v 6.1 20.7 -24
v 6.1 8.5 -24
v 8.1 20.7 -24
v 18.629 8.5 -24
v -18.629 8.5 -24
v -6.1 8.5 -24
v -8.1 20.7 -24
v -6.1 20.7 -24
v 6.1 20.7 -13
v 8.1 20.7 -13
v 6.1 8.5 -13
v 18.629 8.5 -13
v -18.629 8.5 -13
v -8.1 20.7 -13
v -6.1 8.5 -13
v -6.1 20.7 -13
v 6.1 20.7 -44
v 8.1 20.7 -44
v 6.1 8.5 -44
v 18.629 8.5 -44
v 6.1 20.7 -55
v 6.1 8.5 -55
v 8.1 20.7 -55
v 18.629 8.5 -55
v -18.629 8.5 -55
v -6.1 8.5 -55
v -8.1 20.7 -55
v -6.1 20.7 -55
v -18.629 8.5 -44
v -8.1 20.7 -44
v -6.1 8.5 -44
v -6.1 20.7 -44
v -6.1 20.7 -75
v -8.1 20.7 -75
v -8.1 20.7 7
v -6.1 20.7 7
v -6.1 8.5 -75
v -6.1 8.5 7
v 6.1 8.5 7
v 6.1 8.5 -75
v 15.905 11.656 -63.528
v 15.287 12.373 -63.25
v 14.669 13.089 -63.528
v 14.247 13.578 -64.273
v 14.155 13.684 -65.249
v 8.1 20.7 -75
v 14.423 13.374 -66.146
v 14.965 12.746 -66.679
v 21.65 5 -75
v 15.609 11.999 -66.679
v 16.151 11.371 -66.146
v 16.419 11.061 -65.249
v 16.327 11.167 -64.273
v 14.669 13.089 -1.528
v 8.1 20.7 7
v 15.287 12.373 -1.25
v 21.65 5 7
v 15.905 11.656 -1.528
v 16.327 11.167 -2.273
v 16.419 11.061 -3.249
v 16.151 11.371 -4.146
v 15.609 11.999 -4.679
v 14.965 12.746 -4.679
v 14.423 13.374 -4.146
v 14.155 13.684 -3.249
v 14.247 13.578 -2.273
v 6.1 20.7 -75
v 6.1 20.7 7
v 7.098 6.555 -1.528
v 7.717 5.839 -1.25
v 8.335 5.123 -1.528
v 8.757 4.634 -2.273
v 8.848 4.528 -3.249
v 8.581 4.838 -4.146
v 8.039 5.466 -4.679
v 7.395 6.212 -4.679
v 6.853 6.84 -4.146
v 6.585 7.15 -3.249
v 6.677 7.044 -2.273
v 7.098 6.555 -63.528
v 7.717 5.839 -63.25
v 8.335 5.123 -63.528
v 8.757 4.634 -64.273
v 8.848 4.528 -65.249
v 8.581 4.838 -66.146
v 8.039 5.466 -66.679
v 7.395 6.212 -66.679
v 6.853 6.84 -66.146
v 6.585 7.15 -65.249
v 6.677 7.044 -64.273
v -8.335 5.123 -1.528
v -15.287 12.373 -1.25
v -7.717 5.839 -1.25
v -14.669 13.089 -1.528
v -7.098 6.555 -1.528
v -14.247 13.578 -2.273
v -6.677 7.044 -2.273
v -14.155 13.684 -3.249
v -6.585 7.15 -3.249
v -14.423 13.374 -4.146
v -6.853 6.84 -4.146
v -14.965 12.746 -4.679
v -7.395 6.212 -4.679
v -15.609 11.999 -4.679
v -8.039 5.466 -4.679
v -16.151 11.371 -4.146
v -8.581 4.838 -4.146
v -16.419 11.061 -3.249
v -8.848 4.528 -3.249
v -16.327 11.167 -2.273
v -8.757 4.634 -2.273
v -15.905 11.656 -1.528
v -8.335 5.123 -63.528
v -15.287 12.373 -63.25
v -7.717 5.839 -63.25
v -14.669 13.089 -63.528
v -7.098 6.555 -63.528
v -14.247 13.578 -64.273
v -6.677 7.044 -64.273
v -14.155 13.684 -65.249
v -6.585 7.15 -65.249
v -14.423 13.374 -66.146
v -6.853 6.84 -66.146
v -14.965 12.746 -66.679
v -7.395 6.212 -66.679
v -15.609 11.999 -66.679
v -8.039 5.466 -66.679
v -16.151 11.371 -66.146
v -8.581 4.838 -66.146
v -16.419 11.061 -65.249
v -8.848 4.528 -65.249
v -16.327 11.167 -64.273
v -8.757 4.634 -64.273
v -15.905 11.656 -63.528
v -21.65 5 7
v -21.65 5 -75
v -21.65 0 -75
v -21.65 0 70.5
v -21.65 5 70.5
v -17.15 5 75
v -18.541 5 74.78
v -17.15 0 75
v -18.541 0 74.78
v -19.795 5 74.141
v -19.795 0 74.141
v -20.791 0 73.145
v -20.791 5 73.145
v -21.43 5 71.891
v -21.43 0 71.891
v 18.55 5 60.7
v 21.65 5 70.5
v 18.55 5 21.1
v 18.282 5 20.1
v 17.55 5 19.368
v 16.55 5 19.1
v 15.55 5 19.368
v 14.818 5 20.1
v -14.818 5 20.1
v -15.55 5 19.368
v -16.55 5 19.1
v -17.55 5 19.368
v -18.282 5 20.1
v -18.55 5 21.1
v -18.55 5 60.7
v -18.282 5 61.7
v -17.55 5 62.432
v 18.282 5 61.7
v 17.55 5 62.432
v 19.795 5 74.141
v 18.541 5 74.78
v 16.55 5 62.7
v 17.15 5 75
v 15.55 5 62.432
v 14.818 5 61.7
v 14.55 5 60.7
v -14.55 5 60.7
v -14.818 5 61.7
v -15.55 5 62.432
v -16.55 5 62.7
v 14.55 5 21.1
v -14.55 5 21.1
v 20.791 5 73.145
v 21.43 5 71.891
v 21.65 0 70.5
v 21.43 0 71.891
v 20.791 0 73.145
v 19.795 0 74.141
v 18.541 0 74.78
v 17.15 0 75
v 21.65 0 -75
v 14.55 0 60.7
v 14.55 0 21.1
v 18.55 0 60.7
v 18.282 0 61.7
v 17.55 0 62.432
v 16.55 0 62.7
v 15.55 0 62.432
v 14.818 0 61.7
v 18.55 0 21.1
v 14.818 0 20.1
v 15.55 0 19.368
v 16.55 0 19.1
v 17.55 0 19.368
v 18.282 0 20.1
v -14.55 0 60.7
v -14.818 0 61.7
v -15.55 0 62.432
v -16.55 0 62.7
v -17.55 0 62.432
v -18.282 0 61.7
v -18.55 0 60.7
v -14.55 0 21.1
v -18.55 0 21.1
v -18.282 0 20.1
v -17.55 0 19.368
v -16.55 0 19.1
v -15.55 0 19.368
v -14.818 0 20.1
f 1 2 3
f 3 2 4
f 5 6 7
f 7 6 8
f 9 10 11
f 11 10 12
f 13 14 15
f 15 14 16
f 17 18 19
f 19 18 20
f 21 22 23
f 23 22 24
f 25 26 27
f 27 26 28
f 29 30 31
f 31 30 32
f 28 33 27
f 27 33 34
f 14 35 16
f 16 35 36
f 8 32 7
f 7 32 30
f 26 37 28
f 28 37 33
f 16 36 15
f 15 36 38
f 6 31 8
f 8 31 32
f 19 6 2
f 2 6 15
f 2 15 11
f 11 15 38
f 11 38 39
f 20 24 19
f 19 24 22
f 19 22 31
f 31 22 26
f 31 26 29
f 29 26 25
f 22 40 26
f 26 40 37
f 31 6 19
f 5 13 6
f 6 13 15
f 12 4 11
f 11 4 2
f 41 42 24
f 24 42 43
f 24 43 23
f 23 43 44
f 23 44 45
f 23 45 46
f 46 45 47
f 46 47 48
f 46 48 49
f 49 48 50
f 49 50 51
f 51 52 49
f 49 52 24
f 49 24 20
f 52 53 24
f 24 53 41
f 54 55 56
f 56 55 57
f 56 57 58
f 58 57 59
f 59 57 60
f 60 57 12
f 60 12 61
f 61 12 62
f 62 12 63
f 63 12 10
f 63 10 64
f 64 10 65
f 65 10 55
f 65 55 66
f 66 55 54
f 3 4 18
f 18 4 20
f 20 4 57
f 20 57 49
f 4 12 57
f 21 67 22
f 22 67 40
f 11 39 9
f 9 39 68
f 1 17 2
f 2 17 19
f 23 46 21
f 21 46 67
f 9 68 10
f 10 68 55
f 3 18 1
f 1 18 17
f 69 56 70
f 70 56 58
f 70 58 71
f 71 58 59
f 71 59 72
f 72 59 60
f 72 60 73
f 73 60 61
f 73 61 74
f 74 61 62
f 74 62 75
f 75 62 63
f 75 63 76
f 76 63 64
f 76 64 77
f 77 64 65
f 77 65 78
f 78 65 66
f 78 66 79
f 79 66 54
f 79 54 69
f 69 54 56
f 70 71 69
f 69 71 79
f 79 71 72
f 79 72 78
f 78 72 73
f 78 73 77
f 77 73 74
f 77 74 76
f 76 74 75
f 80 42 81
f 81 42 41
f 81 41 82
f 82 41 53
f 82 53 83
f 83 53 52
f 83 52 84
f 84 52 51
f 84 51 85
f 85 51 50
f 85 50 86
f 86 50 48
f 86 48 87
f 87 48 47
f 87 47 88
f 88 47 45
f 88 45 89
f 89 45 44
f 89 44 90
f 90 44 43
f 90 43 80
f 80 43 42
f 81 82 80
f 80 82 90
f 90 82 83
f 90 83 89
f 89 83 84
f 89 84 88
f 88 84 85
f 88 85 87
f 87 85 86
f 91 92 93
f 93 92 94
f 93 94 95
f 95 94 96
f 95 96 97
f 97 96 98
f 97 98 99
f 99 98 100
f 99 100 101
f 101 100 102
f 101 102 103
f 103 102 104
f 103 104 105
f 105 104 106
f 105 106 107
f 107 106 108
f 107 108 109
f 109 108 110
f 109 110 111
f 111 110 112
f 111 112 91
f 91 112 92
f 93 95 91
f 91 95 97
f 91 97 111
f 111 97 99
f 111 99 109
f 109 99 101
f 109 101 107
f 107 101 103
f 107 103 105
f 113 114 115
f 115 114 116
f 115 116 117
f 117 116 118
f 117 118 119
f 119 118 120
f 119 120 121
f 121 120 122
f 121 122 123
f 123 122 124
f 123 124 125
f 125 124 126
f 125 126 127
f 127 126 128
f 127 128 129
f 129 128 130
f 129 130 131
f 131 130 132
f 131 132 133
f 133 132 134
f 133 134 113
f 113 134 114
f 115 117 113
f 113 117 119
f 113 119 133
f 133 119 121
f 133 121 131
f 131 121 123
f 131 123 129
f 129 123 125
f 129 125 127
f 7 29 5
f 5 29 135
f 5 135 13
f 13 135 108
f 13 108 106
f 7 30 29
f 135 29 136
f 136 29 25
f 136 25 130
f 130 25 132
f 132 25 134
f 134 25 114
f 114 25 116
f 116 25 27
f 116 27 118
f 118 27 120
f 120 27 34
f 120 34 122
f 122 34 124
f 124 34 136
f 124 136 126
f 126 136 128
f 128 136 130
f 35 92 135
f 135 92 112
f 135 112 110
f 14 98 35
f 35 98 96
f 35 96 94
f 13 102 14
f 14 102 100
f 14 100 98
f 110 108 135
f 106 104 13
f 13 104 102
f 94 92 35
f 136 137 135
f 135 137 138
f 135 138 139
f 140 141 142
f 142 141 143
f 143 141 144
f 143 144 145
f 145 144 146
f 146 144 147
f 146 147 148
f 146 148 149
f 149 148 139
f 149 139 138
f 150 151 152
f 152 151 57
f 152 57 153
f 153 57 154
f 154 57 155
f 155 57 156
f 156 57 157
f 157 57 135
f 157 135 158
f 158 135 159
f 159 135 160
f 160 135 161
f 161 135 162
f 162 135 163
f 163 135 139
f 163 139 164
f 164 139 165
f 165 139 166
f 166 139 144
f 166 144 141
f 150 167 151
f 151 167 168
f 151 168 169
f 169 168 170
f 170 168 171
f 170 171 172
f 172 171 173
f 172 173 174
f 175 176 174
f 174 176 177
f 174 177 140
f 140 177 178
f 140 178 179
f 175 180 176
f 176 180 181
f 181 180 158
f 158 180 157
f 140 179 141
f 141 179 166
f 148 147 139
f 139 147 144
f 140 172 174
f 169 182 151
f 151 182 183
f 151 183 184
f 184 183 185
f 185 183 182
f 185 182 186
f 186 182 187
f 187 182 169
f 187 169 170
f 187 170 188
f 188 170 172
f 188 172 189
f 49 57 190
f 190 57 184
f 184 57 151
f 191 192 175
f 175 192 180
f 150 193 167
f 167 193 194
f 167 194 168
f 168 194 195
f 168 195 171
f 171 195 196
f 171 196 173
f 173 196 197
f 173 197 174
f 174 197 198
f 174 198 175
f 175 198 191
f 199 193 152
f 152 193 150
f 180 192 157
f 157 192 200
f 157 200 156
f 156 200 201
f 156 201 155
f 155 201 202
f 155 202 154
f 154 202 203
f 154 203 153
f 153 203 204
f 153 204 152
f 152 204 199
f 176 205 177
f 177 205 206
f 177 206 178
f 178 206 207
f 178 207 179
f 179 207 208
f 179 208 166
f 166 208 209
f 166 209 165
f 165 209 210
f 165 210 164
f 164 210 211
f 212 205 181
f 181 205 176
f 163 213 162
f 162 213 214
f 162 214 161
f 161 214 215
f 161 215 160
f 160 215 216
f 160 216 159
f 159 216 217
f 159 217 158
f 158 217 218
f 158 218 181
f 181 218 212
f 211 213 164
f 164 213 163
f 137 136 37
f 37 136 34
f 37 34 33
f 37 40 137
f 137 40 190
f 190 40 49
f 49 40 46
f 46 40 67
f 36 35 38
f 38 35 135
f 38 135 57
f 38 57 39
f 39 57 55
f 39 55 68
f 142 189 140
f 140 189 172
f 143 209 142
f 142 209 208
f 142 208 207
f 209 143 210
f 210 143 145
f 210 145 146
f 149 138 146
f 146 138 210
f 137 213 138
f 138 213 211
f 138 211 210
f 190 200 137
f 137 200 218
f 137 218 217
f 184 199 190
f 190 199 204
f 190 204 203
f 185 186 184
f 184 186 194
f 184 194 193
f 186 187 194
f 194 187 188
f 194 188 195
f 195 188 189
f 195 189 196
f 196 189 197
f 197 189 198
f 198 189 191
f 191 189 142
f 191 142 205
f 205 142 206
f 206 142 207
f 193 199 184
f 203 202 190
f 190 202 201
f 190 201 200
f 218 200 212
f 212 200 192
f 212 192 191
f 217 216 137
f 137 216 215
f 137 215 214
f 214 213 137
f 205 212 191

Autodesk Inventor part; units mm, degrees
ref_plane "YZ Plane" through (0, 0, 0) normal (1, 0, 0) x (0, 1, 0)
ref_plane "XZ Plane" through (0, 0, 0) normal (0, 1, 0) x (-1, 0, 0)
ref_plane "XY Plane" through (0, 0, 0) normal (0, 0, 1) x (1, 0, 0)
sketch "스케치1" plane through (0, 0, 0) normal (0, 1, 0) x (-1, 0, 0)
  line L0 (-21.65, 75) -> (21.65, 75)
  line L1 (21.65, 75) -> (21.65, -75)
  line L2 (21.65, -75) -> (-21.65, -75)
  line L3 (-21.65, -75) -> (-21.65, 75)
  line L4 (-21.65, 75) -> (21.65, -75) construction
  line L5 (21.65, 75) -> (-21.65, -75) construction
  line L6 (-21.65, 7) -> (21.65, 7)
  point P0 (0, 0)
  dimension "d0" = 43.3
  dimension "d1" = 150
  dimension "d2" = 68
extrude "돌출2" add sketch "스케치1" along normal blind 5 contours L0 L1 L6 L3
extrude "돌출3" add sketch "스케치1" along normal blind 8.5 contours L6 L1 L2 L3
sketch "스케치3" plane through (0, 8.5, 0) normal (0, 1, 0) x (1, 0, 0)
  line L0 (-21.65, -7) -> (21.65, -7) projected
  line L1 (21.65, 75) -> (-21.65, 75) projected
  line L2 (6.1, -7) -> (-6.1, -7)
  line L3 (-6.1, -7) -> (-6.1, 75)
  line L4 (-6.1, 75) -> (6.1, 75)
  line L5 (6.1, 75) -> (6.1, -7)
  line L6 (21.65, -7) -> (21.65, 75) projected
  line L7 (21.65, 75) -> (6.1, 75)
  line L8 (6.1, 75) -> (6.1, -7)
  line L9 (6.1, -7) -> (21.65, -7)
  line L10 (21.65, -7) -> (21.65, 75)
  line L11 (-21.65, 75) -> (-6.1, 75)
  line L12 (-6.1, 75) -> (-6.1, -7)
  line L13 (-6.1, -7) -> (-21.65, -7)
  line L14 (-21.65, -7) -> (-21.65, 75)
  point P0 (0, 0)
  point P1 (-6.1, -7)
  point P2 (6.1, 75)
  dimension "d9" = 12.2
  dimension "d11" = 6.1
extrude "돌출4" add sketch "스케치3" along normal blind 12.2 contours L14 L1 L3 L0 | L5 L1 L6 L0
sketch "스케치4" plane through (0, 5, 0) normal (0, 1, 0) x (1, 0, 0)
  line L0 (16.55, -19.1) -> (16.55, -62.7) construction
  line L1 (14.55, -21.1) -> (14.55, -60.7)
  line L2 (18.55, -60.7) -> (18.55, -21.1)
  arc A0 (18.55, -21.1) -> (14.55, -21.1) centre (16.55, -21.1) ccw
  arc A1 (14.55, -60.7) -> (18.55, -60.7) centre (16.55, -60.7) ccw
  line L3 (21.65, -75) -> (21.65, -7) projected
  line L4 (-21.65, -75) -> (21.65, -75) projected
  line L5 (21.65, -7) -> (-21.65, -7) projected
  line L6 (0, -7) -> (0, -75)
  line L7 (-16.55, -19.1) -> (-16.55, -62.7) construction
  line L8 (-14.55, -21.1) -> (-14.55, -60.7)
  line L9 (-18.55, -60.7) -> (-18.55, -21.1)
  arc A2 (-14.55, -21.1) -> (-18.55, -21.1) centre (-16.55, -21.1) ccw
  arc A3 (-18.55, -60.7) -> (-14.55, -60.7) centre (-16.55, -60.7) ccw
  point P0 (0, 0)
  point P1 (16.55, -40.9)
  point P2 (-16.55, -40.9)
  dimension "d14" = 43.6
  dimension "d15" = 3.1
  dimension "d16" = 4
  dimension "d17" = 12.3
extrude "돌출5" cut sketch "스케치4" against normal through all contours A0 L2 A1 L1 | L8 A3 L9 A2
fillet "모깎기1" radius 4.5 2 edges at (21.65, 2.5, 75) (-21.65, 2.5, 75)
sketch "스케치5" plane through (-21.65, 5, 7) normal (0, 0, 1) x (1, 0, 0)
  line L0 (27.75, 3.5) -> (15.55, 3.5) projected
  line L1 (21.65, 3.5) -> (21.65, 29.9168)
  line L2 (43.3, 0) -> (43.3, 15.7) projected
  line L3 (4.5, 0) -> (38.8, 0) projected
  line L4 (43.3, 15.7) -> (27.75, 15.7)
  line L5 (27.75, 15.7) -> (27.75, 0)
  line L6 (27.75, 0) -> (43.3, 0)
  line L7 (43.3, 0) -> (43.3, 15.7)
  line L8 (43.3, 0) -> (29.75, 15.7)
  line L9 (43.3, 15.7) -> (27.75, 15.7) projected
  line L10 (43.3, -5) -> (38.8, -5) projected
  line L11 (0, 0) -> (0, 15.7)
  line L12 (0, 15.7) -> (15.55, 15.7)
  line L13 (0, 0) -> (0, 15.7)
  line L14 (0, 0) -> (13.55, 15.7)
  point P0 (21.65, -5)
  dimension "d21" = 2
  dimension "d22" = 5
extrude "돌출6" cut sketch "스케치5" against normal through all contours L8 L4 L2 | L11 L12 L14
sketch "스케치7" plane through (-21.65, 5, -75) normal (-0.757, 0.6534, 0) x (0, 0, 1)
  line L0 (0, 20.7387) -> (82, 20.7387) projected
  line L1 (82, 0) -> (0, 0) projected
  line L2 (82, 20.7387) -> (82, 0) projected
  circle A0 centre (10, 9.7387) radius 1.75
  line L3 (82, 28.2909) -> (82, 0) projected
  line L4 (82, 9.7387) -> (0, 9.7387)
  line L5 (0, 24.5057) -> (0, -3.7852) projected
  line L6 (82, 20.7806) -> (0, 20.7806) projected
  line L7 (41, 20.7806) -> (41, 0)
  circle A1 centre (72, 9.7387) radius 1.75
  dimension "d26" = 3.5
  dimension "d28" = 10
  dimension "d39" = 11
extrude "돌출7" cut sketch "스케치7" against normal blind 10 contours L4 A0 | A0 L4 | A1 L4 | L4 A1
mirror "미러1" about plane through (0, 0, 0) normal (1, 0, 0) of "돌출7"
sketch "스케치9" plane through (0, 8.5, 0) normal (0, 1, 0) x (1, 0, 0)
  ellipse E0 centre (-15.2871, 3) end of major axis (-15.2871, 1.25) minor radius 1.1434 projected
  ellipse E1 centre (-15.2871, 65) end of major axis (-15.2871, 63.25) minor radius 1.1434 projected
  line L0 (-29.6157, 34) -> (32.1158, 34)
  line L1 (-21.65, -7) -> (-21.65, 75) projected
  line L2 (21.65, 75) -> (21.65, -7) projected
  line L3 (-21.65, 13) -> (21.65, 13)
  line L4 (21.65, 13) -> (21.65, 55)
  line L5 (21.65, 55) -> (-21.65, 55)
  line L6 (-21.65, 55) -> (-21.65, 13)
  line L7 (-21.65, 75) -> (-21.65, -70.5) projected
  line L8 (21.65, -70.5) -> (21.65, 75) projected
  line L9 (-21.65, 24) -> (21.65, 24)
  line L10 (21.65, 24) -> (21.65, 44)
  line L11 (21.65, 44) -> (-21.65, 44)
  line L12 (-21.65, 44) -> (-21.65, 24)
  point P0 (0, 0)
  point P1 (21.65, 13)
  point P2 (-21.65, 44)
  dimension "d32" = 10
  dimension "d33" = 10
  dimension "d36" = 20
  dimension "d38" = 11
extrude "돌출8" cut sketch "스케치9" along normal through all contours L9 L2 L3 L1 | L1 L5 L2 L11
properties part number "sun2" material "티타늄"
